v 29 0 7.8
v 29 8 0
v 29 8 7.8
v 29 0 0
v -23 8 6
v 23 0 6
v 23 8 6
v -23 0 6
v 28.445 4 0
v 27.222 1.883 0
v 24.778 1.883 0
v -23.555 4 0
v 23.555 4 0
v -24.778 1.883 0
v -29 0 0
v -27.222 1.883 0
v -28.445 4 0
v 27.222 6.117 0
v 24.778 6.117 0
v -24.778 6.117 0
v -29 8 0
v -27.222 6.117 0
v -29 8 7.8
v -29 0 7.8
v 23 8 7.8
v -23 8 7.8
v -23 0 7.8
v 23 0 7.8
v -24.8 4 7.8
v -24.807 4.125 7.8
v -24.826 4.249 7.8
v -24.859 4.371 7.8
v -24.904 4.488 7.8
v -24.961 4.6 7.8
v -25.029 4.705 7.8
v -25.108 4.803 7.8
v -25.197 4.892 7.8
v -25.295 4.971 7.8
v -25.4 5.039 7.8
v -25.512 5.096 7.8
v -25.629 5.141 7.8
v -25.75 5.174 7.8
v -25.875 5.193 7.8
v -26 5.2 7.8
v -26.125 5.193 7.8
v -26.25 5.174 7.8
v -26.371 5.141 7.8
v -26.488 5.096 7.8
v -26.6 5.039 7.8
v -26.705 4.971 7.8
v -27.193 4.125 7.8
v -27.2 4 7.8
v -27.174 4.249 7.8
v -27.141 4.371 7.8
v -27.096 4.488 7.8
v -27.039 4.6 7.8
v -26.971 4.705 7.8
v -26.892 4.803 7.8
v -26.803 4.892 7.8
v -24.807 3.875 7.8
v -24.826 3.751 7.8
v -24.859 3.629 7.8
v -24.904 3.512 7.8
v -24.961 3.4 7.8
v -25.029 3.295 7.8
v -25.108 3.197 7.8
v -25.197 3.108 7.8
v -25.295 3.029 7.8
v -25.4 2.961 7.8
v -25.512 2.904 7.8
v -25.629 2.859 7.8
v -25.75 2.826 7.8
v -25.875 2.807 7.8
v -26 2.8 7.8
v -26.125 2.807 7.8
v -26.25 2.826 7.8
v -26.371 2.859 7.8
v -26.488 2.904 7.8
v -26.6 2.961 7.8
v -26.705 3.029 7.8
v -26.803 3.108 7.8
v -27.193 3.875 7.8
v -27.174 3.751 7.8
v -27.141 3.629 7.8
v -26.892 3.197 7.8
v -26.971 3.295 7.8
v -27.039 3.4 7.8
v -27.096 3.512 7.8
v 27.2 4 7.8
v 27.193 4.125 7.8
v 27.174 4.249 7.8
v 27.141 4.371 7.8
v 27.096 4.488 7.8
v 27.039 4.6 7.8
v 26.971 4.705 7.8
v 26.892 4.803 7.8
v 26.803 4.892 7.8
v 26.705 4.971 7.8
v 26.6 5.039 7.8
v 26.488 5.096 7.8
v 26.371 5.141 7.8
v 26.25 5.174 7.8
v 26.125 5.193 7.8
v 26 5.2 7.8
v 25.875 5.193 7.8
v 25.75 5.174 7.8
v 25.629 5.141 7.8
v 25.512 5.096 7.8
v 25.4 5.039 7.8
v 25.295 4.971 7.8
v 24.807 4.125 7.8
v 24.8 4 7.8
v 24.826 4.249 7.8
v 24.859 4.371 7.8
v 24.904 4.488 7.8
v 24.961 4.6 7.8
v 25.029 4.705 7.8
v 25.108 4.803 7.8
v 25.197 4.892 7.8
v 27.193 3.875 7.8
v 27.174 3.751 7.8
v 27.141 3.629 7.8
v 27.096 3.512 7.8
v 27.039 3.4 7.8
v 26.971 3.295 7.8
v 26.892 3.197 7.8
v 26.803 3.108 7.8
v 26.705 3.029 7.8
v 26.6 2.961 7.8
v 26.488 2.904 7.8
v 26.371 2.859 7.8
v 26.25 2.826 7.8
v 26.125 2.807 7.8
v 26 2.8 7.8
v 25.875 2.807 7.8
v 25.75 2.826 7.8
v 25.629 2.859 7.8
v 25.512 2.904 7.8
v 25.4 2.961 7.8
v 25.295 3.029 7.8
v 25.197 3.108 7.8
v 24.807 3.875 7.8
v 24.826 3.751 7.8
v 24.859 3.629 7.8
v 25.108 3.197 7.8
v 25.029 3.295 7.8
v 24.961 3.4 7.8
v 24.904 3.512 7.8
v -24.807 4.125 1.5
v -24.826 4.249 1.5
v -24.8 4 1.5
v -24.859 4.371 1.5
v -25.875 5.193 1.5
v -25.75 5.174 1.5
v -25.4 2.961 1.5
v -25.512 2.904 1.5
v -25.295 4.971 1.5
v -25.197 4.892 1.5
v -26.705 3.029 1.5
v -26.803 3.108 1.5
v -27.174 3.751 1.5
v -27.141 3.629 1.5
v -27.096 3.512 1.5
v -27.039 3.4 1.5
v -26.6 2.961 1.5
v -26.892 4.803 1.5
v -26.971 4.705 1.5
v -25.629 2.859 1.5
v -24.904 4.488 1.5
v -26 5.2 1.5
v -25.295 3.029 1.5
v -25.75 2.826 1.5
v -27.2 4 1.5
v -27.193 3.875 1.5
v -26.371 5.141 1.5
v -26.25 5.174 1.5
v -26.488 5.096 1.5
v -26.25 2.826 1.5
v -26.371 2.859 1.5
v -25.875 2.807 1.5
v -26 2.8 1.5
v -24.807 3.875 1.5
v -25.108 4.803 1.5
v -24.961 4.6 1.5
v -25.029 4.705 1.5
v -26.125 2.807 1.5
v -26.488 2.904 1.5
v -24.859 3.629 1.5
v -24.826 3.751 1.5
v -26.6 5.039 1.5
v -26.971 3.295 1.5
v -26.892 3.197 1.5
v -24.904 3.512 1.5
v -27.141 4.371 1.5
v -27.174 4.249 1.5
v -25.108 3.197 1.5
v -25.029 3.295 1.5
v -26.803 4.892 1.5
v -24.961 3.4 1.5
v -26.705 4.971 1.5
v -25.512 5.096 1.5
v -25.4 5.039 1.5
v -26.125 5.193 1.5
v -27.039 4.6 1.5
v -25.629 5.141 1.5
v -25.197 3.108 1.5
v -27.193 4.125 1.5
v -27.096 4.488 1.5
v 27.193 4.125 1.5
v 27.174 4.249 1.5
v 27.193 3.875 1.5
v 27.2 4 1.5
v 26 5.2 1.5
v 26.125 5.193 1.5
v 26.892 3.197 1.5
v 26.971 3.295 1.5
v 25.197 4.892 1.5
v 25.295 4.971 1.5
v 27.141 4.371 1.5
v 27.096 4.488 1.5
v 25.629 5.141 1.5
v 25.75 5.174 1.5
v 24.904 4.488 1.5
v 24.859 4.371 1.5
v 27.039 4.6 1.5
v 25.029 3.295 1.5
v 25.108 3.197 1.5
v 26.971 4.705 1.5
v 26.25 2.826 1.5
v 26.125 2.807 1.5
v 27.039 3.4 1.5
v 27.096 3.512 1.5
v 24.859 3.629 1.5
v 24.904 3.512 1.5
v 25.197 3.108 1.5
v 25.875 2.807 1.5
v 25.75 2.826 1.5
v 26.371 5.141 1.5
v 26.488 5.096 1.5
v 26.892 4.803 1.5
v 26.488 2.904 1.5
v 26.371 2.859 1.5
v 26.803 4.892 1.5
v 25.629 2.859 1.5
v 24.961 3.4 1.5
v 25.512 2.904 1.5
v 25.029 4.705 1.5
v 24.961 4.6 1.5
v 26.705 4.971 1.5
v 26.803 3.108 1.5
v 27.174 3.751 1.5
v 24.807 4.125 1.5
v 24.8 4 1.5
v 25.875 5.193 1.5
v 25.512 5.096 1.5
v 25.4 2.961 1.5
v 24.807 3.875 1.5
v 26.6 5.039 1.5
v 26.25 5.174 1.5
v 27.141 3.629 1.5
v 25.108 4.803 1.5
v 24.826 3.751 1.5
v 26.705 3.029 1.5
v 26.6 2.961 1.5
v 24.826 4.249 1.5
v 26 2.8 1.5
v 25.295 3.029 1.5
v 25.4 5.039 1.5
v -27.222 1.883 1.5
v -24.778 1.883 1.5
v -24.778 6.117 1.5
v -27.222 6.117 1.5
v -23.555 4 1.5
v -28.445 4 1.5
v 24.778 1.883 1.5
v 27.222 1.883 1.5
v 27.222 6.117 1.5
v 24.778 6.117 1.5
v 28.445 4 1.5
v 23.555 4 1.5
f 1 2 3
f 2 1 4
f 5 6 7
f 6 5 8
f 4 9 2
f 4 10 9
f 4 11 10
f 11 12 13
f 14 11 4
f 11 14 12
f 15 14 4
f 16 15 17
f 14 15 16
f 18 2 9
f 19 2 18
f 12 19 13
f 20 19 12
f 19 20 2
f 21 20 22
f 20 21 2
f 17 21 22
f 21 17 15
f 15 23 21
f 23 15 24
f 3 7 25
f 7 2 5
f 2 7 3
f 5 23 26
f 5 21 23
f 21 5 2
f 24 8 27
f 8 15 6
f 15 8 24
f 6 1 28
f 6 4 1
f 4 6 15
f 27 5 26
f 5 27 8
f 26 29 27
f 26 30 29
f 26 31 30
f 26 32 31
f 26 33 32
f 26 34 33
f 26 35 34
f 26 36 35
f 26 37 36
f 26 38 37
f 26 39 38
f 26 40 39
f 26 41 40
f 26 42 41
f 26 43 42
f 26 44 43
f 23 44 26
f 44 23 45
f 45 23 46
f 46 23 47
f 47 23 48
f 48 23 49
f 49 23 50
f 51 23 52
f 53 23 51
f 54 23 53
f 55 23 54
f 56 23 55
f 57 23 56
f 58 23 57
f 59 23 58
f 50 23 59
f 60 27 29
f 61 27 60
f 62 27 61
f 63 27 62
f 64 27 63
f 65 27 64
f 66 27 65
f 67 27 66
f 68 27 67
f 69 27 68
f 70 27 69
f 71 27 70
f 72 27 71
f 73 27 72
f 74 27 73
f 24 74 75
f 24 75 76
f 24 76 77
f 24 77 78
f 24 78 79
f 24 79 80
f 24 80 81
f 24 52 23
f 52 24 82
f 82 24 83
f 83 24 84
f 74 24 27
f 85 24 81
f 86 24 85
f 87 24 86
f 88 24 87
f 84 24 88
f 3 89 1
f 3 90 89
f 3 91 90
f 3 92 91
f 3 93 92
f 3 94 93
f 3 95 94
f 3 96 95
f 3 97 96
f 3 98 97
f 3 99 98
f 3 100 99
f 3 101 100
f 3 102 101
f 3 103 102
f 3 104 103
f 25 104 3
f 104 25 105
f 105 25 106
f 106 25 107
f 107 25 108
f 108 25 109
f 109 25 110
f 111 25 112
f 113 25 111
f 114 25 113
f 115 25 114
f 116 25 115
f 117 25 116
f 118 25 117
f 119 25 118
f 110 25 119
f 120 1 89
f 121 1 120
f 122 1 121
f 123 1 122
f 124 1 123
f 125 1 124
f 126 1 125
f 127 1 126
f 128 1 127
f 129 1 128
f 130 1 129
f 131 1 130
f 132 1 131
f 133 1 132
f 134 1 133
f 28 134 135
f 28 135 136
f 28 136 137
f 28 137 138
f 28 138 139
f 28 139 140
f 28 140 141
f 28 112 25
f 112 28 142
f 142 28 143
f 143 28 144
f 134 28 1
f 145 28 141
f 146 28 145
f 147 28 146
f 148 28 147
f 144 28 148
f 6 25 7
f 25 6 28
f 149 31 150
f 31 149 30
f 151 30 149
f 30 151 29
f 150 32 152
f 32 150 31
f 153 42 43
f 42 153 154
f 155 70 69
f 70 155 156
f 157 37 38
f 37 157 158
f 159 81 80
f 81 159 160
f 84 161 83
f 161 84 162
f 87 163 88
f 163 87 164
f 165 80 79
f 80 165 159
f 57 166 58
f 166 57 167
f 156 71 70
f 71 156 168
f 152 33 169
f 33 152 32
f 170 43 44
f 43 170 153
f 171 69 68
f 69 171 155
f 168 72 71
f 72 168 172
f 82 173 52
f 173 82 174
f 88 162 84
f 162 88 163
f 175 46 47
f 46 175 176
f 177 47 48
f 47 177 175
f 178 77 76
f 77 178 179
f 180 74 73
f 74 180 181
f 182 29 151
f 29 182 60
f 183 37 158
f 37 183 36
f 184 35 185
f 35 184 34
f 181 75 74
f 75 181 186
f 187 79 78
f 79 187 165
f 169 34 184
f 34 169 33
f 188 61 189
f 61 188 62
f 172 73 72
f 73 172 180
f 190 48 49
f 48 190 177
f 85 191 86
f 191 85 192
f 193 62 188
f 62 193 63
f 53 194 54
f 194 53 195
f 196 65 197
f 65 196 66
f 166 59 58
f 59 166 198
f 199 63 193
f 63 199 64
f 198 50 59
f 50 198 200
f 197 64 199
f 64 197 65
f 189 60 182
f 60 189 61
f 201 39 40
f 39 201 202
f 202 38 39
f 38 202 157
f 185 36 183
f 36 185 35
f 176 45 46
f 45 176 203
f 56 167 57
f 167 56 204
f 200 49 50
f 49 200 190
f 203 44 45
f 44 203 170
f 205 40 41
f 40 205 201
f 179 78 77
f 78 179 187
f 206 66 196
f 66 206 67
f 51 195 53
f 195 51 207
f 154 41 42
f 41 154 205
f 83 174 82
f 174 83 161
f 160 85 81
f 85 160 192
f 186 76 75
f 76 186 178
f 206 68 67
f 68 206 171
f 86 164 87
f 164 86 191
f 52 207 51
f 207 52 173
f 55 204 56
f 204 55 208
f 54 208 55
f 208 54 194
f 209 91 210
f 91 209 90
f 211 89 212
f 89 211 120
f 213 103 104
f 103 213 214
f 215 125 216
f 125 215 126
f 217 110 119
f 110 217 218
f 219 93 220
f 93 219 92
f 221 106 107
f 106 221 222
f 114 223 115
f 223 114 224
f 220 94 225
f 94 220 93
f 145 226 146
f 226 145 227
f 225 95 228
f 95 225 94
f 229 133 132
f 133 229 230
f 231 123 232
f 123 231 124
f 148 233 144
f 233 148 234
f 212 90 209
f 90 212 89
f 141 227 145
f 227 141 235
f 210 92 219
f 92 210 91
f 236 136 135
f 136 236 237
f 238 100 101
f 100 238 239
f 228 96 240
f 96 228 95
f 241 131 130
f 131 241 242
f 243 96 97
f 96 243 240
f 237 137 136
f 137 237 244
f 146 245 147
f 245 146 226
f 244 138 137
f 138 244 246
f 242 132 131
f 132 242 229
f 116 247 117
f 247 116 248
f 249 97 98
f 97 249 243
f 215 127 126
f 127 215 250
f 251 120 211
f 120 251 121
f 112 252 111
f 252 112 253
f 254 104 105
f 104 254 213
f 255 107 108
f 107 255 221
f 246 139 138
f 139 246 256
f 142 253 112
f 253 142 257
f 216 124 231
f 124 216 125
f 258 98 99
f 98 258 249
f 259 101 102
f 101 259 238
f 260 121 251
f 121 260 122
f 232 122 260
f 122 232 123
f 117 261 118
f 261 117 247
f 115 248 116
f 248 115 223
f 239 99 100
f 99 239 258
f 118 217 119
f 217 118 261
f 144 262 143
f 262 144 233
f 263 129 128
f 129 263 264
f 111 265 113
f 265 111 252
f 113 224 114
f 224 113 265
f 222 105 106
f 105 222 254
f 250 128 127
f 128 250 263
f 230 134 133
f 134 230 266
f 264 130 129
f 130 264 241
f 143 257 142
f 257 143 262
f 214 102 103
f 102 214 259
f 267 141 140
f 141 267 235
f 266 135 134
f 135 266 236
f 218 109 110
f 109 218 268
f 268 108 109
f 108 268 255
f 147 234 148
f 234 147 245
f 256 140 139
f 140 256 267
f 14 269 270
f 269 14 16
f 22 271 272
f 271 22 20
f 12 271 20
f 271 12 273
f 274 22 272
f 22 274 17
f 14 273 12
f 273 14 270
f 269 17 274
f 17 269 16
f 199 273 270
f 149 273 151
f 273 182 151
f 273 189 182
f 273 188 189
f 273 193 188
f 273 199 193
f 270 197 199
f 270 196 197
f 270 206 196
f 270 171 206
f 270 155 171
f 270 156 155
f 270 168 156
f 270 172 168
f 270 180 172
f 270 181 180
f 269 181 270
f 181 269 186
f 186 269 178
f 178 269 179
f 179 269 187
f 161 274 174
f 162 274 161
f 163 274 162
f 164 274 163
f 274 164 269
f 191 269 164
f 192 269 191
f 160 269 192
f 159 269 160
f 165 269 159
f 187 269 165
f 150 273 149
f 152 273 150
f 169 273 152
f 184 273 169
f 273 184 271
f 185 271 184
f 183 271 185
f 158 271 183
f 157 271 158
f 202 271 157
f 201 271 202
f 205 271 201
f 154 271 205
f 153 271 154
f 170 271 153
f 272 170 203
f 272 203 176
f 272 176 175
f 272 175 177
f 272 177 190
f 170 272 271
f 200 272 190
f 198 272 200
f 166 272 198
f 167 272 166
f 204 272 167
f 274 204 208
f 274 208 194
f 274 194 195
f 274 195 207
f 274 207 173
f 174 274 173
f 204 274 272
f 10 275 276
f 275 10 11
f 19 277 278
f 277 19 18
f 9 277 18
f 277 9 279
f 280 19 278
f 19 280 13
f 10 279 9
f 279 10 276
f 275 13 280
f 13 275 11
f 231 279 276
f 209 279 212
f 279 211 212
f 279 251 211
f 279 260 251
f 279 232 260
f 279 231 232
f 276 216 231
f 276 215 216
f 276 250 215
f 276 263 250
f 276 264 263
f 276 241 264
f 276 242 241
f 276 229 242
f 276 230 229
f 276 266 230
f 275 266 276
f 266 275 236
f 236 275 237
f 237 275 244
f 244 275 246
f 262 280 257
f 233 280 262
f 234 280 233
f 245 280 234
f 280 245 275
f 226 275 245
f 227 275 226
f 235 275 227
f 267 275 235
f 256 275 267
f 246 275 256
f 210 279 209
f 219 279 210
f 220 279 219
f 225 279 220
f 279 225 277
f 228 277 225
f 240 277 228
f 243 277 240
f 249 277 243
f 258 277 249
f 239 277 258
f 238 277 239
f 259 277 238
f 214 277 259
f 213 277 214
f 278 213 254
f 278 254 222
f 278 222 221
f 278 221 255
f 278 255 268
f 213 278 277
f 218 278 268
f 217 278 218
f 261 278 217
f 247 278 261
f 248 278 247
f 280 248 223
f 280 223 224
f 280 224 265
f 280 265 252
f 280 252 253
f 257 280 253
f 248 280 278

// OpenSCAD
// This is a 3D printed bracket (in two parts) to support the
// VGA breakout in order to avoid bending the header pins.

// all dimensions are mm

// width of an M2 nut
nut_w = 3.89;

// allow some clearance (due to imprecision of printer)
nut_clear = 1;

// width of the pocket where the nut will sit
nut_pocket_w = nut_w + nut_clear;

// height of M2 nut, use this as the pocket depth
nut_h = 1.5;

// clearance hole width for an M2 screw
screw_hole_w = 2.4;

pcb_w = 46;
pcb_h = 1.8; // really 1.6, but allow a bit of play

edge_w = 6;

bracket_w = 46 + edge_w*2;
bracket_d = 8;
bracket_h = 6; // this is the amount we want to elevate the breakout PCB

module bracket() {
    translate([-bracket_w/2, 0, 0]) {
        cube([bracket_w, bracket_d, bracket_h]);
    }
    translate([-bracket_w/2, 0, bracket_h]) {
        cube([edge_w, bracket_d, pcb_h]);
    }
    translate([bracket_w/2 - edge_w, 0, bracket_h]) {
        cube([edge_w, bracket_d, pcb_h]);
    }
}

module bracket_with_screw_holes() {
    difference() {
        bracket();
        // left M2 screw hole
        translate([-bracket_w/2 + edge_w/2, bracket_d/2, -1]) {
            cylinder(r=screw_hole_w/2, h=bracket_h+pcb_h+2, $fn=60);
        }
        // right M2 screw hole
        translate([bracket_w/2 - edge_w/2, bracket_d/2, -1]) {
            cylinder(r=screw_hole_w/2, h=bracket_h+pcb_h+2, $fn=60);
        }
        // left M2 nut pocket
        translate([-bracket_w/2 + edge_w/2, bracket_d/2, -1]) {
            cylinder(r=nut_pocket_w/2, h=nut_h+1, $fn=6);
        }
        // right M2 nut pocket
        translate([bracket_w/2 - edge_w/2, bracket_d/2, -1]) {
            cylinder(r=nut_pocket_w/2, h=nut_h+1, $fn=6);
        }
    }
}

bracket_with_screw_holes();
